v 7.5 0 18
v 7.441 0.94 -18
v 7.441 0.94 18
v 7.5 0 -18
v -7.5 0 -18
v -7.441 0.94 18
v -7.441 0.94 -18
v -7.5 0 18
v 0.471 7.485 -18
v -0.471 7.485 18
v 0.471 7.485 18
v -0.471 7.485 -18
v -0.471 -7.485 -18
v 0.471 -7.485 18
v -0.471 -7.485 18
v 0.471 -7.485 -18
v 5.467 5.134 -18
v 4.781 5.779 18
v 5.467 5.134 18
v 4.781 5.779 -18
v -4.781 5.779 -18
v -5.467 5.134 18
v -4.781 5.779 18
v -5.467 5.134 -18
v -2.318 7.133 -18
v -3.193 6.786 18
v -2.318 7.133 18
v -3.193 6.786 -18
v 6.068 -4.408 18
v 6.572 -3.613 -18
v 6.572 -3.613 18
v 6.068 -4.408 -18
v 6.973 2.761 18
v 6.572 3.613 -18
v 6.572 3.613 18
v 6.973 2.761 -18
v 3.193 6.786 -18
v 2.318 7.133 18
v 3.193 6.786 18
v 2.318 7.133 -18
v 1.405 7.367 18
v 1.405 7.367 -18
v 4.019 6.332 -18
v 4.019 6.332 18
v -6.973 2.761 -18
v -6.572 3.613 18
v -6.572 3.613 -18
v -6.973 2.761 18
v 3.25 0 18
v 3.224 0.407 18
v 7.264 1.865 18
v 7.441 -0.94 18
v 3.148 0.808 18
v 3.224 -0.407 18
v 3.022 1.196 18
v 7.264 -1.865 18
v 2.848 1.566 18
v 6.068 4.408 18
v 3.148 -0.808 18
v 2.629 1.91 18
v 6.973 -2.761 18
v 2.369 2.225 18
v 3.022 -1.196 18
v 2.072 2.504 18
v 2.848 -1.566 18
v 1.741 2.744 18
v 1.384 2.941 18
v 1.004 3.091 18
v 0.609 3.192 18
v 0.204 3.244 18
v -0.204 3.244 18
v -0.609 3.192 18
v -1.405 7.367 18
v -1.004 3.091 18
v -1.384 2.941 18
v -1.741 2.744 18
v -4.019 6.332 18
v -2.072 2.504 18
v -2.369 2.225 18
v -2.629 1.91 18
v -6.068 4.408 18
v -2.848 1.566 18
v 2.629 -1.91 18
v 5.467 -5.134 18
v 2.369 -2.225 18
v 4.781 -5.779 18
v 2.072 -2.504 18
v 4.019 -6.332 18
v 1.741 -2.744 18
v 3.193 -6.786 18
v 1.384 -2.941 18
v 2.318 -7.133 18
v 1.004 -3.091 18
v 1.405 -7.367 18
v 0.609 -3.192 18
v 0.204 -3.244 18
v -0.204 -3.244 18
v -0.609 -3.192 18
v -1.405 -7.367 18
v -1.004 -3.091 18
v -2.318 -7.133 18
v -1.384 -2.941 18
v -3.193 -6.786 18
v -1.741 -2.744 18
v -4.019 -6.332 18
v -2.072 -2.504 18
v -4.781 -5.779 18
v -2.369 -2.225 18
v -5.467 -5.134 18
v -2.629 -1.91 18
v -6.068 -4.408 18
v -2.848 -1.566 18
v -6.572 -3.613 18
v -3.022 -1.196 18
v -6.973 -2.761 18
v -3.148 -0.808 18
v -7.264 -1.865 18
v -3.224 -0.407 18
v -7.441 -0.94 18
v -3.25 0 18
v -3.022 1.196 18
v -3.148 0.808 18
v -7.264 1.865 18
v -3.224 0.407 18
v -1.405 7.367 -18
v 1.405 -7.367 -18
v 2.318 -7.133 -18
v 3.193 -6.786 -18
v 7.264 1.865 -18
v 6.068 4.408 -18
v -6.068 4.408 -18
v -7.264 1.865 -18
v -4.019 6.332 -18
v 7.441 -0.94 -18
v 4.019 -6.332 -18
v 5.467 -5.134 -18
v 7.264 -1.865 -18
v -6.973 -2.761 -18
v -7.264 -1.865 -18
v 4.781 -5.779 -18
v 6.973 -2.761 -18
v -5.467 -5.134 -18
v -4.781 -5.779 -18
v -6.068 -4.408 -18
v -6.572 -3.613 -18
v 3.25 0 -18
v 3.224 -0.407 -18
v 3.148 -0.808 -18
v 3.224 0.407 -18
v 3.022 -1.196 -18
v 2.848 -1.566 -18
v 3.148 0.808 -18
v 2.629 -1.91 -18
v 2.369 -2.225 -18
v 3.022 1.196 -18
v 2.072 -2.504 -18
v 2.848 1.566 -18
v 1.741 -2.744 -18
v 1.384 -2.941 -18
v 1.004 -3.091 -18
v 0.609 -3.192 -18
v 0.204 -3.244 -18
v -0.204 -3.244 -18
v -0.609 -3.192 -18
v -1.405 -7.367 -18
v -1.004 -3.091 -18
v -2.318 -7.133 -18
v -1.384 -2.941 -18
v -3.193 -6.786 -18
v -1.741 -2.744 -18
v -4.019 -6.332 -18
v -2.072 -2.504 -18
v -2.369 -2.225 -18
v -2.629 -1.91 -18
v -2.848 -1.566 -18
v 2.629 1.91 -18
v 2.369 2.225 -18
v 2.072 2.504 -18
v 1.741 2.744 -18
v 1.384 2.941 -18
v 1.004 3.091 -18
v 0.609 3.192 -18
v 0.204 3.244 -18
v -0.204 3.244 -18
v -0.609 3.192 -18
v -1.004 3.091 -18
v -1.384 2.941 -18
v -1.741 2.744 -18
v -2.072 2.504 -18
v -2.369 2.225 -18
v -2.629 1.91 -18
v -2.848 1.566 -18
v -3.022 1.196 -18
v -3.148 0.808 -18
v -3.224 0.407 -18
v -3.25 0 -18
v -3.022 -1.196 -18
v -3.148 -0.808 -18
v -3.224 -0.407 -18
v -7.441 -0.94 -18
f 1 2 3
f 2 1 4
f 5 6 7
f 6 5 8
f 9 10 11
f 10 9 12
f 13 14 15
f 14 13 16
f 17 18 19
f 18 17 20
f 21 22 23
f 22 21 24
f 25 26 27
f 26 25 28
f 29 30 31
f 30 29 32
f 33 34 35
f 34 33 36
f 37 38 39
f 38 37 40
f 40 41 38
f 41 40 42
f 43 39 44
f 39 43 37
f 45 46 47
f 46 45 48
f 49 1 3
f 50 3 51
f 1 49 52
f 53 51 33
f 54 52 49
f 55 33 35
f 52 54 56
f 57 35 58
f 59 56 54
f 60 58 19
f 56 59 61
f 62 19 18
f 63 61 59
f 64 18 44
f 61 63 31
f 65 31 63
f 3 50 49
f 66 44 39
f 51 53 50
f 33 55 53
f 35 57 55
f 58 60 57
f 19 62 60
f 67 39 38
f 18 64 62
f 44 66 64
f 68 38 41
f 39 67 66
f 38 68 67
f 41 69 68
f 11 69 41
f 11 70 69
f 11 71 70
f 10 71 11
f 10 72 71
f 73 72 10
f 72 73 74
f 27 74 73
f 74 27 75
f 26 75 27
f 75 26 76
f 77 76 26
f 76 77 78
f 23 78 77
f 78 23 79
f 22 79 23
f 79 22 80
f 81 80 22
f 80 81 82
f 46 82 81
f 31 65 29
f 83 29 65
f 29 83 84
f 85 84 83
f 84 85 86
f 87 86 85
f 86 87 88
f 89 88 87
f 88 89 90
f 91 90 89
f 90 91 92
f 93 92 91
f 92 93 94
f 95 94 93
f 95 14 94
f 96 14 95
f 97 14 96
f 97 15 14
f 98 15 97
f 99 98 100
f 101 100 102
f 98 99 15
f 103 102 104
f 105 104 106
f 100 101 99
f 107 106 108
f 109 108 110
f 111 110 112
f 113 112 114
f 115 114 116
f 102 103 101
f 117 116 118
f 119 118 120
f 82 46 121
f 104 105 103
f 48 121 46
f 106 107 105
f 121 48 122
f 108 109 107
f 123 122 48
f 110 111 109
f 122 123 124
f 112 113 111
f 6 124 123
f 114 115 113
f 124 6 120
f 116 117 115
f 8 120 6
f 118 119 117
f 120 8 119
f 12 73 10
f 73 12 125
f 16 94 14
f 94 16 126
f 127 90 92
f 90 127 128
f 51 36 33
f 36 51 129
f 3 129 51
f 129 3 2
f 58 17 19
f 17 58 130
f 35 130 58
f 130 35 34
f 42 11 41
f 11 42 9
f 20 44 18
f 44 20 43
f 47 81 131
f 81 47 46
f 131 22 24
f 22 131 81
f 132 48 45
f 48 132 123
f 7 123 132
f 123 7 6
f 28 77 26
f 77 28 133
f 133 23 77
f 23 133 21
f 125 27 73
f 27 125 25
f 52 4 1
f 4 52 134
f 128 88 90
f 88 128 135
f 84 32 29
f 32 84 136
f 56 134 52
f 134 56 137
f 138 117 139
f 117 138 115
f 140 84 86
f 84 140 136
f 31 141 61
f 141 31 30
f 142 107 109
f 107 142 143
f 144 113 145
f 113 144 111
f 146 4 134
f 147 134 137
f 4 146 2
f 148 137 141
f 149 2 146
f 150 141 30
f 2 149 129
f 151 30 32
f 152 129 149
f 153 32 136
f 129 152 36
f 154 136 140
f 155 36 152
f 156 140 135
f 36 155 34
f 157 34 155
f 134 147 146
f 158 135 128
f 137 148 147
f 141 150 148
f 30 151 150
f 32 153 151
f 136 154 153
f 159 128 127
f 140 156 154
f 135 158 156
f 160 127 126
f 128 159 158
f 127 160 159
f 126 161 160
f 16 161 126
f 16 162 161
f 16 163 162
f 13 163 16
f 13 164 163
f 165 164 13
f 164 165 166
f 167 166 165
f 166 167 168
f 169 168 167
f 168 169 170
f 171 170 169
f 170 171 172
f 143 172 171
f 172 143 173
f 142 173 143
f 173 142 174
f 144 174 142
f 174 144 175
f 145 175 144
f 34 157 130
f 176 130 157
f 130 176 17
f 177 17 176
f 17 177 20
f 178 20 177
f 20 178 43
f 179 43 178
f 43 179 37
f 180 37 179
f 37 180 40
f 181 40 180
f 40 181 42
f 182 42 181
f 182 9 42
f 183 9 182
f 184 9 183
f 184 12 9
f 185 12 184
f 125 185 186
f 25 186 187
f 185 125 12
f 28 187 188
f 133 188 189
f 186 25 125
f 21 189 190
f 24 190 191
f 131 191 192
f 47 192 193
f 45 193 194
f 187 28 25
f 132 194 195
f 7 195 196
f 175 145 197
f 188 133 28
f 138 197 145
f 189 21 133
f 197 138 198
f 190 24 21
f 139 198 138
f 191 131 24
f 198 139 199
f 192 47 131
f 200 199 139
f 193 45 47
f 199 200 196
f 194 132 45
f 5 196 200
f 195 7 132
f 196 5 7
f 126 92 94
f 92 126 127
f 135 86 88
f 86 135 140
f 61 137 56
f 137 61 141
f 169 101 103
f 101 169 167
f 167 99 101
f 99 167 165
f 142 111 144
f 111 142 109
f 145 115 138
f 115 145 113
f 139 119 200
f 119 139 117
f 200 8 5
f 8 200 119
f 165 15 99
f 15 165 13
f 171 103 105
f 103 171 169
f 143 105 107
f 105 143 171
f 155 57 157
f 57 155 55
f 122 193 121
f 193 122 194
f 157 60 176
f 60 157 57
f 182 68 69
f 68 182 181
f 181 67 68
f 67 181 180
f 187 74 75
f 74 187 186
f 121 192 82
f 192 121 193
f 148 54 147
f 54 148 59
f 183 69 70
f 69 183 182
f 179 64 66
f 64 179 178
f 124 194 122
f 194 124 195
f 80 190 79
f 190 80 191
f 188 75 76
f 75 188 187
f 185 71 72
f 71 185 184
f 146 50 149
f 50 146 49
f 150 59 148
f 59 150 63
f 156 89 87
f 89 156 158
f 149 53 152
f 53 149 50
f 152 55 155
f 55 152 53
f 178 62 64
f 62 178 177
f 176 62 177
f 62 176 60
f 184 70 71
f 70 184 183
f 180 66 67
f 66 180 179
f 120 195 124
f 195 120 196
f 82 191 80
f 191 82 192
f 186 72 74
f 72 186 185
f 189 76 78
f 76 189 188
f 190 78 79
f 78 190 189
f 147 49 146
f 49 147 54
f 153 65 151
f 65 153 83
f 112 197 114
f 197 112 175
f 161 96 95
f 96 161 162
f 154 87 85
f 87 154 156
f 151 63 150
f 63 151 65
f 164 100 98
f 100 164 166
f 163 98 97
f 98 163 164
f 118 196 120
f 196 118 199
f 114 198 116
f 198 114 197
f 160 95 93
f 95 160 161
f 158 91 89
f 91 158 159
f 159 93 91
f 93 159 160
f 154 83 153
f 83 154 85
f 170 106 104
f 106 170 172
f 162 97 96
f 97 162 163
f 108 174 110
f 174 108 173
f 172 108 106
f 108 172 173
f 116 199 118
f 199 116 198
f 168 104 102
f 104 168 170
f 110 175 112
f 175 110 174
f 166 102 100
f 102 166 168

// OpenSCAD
$fn = 50;


difference() {
	union() {
		translate(v = [0, 0, -18.0000000000]) {
			cylinder(h = 36, r = 7.5000000000);
		}
	}
	union() {
		translate(v = [0, 0, -100.0000000000]) {
			cylinder(h = 200, r = 3.2500000000);
		}
	}
}
